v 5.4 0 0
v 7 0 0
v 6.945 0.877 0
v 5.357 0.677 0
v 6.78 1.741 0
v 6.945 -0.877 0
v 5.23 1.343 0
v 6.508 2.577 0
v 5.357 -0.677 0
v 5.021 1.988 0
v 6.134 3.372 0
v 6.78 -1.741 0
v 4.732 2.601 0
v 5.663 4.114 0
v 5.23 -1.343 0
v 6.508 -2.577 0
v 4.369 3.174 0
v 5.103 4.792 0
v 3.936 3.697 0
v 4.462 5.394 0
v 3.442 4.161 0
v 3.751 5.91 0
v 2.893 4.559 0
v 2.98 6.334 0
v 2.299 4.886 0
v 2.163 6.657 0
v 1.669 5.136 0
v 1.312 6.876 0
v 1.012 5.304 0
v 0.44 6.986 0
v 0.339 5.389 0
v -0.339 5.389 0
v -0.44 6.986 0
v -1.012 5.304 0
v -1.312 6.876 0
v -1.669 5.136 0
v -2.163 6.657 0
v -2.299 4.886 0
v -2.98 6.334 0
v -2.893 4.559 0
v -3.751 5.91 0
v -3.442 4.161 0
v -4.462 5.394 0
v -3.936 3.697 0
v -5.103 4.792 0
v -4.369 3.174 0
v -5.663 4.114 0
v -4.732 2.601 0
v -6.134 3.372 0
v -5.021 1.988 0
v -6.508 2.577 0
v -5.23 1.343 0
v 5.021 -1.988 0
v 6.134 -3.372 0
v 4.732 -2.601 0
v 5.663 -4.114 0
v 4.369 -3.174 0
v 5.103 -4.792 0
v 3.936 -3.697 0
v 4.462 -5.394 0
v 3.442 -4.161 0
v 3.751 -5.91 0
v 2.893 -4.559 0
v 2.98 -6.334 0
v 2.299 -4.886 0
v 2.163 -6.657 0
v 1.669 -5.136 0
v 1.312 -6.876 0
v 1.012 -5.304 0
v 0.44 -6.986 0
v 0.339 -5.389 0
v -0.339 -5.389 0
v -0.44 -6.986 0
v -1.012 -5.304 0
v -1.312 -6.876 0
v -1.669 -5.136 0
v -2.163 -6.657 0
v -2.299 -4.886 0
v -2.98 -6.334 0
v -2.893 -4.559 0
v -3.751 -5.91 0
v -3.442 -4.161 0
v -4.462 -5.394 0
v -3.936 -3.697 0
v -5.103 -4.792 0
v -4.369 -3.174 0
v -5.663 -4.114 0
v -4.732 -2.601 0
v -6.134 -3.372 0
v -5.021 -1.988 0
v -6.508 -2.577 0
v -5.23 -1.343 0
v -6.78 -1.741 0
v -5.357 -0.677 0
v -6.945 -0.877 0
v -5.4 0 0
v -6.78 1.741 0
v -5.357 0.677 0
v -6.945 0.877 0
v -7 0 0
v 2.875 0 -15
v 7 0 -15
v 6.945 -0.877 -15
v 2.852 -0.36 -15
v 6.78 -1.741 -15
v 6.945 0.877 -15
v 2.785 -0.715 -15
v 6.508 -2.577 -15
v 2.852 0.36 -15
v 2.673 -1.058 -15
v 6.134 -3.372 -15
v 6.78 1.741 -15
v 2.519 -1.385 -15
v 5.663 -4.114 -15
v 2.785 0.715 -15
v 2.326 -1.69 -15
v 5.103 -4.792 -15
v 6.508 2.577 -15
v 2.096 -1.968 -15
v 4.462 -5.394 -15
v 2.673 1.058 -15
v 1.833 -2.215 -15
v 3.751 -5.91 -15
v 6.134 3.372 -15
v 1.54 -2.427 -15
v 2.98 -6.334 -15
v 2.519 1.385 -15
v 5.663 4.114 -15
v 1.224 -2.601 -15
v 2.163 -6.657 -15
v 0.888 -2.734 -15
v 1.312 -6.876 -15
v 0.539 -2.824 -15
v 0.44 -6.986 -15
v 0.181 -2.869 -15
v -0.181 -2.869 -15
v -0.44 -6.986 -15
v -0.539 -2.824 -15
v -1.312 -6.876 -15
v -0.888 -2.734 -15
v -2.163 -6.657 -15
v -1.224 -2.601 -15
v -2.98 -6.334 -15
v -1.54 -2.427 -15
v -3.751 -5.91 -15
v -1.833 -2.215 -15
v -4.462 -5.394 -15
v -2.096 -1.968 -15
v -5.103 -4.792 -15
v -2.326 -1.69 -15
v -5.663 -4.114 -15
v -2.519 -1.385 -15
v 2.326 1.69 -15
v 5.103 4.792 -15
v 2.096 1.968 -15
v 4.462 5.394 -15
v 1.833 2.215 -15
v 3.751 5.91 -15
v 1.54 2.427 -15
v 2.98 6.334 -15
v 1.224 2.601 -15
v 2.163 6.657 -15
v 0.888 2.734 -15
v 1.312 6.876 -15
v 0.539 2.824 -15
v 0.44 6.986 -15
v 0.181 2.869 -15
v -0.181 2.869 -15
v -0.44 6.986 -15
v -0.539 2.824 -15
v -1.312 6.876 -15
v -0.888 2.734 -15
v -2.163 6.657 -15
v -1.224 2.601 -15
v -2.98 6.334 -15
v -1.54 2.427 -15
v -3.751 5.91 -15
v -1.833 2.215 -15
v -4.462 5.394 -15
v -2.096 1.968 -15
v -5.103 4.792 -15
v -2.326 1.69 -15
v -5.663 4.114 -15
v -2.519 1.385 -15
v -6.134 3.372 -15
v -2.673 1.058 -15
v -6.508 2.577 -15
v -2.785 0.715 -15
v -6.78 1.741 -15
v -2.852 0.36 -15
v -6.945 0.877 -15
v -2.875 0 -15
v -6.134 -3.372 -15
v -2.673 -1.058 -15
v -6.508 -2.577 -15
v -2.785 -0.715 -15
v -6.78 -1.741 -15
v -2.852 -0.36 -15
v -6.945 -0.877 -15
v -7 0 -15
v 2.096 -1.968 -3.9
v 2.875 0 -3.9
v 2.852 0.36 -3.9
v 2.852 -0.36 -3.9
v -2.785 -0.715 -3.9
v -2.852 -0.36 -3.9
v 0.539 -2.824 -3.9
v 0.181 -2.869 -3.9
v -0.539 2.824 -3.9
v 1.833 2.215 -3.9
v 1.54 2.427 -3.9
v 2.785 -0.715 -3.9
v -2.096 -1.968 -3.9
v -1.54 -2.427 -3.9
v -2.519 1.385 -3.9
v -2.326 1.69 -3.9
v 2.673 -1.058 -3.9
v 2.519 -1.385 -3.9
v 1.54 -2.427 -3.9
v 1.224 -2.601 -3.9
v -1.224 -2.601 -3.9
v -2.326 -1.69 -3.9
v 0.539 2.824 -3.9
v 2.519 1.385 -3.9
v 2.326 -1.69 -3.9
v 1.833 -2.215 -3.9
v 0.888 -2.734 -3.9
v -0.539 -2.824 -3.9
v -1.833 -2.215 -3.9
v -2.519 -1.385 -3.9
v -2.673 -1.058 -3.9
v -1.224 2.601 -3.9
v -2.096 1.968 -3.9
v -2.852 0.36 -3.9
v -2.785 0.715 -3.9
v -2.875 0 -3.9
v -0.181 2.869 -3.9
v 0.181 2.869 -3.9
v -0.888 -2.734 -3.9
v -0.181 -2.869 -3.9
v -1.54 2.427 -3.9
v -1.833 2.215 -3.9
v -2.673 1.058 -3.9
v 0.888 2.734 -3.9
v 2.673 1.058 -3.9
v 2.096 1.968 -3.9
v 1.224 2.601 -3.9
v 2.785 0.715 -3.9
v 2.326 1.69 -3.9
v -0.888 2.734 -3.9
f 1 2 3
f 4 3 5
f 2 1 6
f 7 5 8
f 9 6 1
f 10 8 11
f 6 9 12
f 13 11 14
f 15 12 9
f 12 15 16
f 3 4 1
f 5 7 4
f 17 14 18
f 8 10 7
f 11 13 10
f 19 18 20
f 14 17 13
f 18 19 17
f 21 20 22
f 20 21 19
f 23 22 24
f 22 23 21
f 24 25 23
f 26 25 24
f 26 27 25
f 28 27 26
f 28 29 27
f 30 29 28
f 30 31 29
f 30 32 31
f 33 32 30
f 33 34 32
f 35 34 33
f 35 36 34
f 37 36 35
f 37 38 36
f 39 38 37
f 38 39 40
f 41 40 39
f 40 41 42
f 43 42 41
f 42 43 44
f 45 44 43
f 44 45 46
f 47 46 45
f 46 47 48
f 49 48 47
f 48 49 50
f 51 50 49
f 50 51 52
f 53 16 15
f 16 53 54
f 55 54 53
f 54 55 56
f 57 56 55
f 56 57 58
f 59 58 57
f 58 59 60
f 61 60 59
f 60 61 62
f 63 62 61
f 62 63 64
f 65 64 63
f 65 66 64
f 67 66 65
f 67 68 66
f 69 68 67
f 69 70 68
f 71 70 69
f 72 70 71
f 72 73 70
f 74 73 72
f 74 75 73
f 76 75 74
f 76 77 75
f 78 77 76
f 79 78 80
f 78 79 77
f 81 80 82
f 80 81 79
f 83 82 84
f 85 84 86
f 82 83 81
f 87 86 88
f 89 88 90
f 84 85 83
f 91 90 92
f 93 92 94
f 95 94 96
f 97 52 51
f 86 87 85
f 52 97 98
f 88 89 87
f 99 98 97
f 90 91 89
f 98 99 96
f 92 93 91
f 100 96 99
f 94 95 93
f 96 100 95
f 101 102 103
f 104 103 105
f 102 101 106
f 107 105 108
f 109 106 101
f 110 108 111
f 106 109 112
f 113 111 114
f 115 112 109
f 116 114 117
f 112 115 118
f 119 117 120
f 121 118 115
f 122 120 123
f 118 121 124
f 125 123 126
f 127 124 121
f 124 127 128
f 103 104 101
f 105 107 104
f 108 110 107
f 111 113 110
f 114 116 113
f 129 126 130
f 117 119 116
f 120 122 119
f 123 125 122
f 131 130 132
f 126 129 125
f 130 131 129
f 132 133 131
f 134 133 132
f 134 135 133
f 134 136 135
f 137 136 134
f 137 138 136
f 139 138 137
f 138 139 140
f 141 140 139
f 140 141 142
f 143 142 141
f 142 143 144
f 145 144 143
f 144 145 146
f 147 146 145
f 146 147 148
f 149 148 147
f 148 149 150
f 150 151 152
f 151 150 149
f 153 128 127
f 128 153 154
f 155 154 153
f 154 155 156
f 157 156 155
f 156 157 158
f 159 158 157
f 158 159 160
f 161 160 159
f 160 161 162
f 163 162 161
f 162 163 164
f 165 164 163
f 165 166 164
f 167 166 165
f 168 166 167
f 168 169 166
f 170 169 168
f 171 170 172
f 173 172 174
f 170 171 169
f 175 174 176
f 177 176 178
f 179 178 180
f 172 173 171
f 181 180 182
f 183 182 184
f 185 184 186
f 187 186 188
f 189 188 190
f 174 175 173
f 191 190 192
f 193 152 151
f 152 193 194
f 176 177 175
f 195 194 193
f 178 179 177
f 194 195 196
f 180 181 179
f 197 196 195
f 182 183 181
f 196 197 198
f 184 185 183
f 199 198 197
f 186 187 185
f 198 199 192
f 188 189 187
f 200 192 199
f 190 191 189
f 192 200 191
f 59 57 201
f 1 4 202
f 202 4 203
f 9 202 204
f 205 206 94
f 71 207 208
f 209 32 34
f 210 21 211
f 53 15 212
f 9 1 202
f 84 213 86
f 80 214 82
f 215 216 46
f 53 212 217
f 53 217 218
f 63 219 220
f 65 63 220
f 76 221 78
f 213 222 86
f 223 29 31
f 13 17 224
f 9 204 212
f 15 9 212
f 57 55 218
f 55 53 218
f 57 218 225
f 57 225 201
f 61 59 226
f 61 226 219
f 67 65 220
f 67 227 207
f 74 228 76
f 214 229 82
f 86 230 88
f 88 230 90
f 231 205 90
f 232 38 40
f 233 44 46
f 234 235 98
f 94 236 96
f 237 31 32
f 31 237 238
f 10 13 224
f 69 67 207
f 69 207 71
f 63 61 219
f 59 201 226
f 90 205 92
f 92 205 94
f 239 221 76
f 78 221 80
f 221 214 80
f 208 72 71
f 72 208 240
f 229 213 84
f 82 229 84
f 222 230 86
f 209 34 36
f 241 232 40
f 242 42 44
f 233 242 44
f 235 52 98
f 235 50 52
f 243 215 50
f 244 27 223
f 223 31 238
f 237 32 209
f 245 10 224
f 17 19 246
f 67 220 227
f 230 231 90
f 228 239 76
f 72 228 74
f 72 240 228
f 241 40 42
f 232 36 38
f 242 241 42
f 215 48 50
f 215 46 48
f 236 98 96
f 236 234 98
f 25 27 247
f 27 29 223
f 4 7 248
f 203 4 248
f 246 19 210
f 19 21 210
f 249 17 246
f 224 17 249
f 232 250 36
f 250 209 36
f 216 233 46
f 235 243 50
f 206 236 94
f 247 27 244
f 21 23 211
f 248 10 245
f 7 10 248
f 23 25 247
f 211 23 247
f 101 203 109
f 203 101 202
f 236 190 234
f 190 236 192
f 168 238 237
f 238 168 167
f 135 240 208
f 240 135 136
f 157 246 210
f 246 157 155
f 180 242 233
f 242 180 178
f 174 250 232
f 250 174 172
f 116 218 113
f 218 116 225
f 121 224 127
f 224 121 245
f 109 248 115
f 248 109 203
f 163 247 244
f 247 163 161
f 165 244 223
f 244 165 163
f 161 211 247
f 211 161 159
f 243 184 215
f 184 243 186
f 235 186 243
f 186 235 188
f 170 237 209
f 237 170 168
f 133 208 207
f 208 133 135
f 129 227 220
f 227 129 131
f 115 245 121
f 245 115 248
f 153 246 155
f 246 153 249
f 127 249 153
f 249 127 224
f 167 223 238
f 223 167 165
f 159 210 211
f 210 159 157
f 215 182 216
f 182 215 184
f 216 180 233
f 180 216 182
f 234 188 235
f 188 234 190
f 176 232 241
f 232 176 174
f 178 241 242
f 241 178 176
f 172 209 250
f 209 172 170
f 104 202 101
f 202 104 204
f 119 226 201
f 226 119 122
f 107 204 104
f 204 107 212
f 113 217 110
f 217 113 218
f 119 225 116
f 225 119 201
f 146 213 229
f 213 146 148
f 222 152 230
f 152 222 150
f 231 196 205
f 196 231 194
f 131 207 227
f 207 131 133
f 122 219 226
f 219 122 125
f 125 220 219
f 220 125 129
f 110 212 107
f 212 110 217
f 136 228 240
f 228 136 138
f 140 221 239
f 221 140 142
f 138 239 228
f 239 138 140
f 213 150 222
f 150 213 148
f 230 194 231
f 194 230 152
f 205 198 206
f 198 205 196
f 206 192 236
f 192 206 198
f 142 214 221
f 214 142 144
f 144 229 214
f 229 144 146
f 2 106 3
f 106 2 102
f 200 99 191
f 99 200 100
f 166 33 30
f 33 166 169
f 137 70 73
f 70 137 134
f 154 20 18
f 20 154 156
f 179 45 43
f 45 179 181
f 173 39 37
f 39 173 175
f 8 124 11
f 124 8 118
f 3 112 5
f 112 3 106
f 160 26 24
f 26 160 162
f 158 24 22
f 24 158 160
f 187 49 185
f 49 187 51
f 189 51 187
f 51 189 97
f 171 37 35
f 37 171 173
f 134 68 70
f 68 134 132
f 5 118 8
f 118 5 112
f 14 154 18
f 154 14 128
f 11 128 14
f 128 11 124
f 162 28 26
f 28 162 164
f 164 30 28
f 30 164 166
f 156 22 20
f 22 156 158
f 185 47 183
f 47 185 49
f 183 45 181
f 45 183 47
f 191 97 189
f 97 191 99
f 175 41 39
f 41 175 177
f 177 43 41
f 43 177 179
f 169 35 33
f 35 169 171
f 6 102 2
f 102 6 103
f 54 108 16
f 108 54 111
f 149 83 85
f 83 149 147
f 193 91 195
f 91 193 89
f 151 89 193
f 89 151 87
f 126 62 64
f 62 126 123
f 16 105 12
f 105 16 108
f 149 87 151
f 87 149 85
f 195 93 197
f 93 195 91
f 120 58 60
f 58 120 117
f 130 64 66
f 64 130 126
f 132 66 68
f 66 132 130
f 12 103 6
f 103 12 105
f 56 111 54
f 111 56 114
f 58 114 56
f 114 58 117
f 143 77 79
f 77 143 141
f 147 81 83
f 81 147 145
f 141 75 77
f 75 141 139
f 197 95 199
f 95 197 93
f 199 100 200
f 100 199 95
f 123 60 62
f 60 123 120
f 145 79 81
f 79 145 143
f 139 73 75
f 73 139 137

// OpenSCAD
$fn = 50;


difference() {
	union() {
		translate(v = [0, 0, -15.0000000000]) {
			cylinder(h = 15, r = 7.0000000000);
		}
	}
	union() {
		translate(v = [0, 0, 0]) {
			rotate(a = [0, 0, 0]) {
				difference() {
					union() {
						#translate(v = [0, 0, -15.0000000000]) {
							cylinder(h = 15, r = 2.6000000000);
						}
						#translate(v = [0, 0, -3.9000000000]) {
							cylinder(h = 3.9000000000, r = 7.0000000000, r1 = 2.8750000000, r2 = 5.4000000000);
						}
						#translate(v = [0, 0, -15.0000000000]) {
							cylinder(h = 15, r = 2.8750000000);
						}
						#translate(v = [0, 0, -15.0000000000]) {
							cylinder(h = 15, r = 2.6000000000);
						}
					}
					union();
				}
			}
		}
	}
}
